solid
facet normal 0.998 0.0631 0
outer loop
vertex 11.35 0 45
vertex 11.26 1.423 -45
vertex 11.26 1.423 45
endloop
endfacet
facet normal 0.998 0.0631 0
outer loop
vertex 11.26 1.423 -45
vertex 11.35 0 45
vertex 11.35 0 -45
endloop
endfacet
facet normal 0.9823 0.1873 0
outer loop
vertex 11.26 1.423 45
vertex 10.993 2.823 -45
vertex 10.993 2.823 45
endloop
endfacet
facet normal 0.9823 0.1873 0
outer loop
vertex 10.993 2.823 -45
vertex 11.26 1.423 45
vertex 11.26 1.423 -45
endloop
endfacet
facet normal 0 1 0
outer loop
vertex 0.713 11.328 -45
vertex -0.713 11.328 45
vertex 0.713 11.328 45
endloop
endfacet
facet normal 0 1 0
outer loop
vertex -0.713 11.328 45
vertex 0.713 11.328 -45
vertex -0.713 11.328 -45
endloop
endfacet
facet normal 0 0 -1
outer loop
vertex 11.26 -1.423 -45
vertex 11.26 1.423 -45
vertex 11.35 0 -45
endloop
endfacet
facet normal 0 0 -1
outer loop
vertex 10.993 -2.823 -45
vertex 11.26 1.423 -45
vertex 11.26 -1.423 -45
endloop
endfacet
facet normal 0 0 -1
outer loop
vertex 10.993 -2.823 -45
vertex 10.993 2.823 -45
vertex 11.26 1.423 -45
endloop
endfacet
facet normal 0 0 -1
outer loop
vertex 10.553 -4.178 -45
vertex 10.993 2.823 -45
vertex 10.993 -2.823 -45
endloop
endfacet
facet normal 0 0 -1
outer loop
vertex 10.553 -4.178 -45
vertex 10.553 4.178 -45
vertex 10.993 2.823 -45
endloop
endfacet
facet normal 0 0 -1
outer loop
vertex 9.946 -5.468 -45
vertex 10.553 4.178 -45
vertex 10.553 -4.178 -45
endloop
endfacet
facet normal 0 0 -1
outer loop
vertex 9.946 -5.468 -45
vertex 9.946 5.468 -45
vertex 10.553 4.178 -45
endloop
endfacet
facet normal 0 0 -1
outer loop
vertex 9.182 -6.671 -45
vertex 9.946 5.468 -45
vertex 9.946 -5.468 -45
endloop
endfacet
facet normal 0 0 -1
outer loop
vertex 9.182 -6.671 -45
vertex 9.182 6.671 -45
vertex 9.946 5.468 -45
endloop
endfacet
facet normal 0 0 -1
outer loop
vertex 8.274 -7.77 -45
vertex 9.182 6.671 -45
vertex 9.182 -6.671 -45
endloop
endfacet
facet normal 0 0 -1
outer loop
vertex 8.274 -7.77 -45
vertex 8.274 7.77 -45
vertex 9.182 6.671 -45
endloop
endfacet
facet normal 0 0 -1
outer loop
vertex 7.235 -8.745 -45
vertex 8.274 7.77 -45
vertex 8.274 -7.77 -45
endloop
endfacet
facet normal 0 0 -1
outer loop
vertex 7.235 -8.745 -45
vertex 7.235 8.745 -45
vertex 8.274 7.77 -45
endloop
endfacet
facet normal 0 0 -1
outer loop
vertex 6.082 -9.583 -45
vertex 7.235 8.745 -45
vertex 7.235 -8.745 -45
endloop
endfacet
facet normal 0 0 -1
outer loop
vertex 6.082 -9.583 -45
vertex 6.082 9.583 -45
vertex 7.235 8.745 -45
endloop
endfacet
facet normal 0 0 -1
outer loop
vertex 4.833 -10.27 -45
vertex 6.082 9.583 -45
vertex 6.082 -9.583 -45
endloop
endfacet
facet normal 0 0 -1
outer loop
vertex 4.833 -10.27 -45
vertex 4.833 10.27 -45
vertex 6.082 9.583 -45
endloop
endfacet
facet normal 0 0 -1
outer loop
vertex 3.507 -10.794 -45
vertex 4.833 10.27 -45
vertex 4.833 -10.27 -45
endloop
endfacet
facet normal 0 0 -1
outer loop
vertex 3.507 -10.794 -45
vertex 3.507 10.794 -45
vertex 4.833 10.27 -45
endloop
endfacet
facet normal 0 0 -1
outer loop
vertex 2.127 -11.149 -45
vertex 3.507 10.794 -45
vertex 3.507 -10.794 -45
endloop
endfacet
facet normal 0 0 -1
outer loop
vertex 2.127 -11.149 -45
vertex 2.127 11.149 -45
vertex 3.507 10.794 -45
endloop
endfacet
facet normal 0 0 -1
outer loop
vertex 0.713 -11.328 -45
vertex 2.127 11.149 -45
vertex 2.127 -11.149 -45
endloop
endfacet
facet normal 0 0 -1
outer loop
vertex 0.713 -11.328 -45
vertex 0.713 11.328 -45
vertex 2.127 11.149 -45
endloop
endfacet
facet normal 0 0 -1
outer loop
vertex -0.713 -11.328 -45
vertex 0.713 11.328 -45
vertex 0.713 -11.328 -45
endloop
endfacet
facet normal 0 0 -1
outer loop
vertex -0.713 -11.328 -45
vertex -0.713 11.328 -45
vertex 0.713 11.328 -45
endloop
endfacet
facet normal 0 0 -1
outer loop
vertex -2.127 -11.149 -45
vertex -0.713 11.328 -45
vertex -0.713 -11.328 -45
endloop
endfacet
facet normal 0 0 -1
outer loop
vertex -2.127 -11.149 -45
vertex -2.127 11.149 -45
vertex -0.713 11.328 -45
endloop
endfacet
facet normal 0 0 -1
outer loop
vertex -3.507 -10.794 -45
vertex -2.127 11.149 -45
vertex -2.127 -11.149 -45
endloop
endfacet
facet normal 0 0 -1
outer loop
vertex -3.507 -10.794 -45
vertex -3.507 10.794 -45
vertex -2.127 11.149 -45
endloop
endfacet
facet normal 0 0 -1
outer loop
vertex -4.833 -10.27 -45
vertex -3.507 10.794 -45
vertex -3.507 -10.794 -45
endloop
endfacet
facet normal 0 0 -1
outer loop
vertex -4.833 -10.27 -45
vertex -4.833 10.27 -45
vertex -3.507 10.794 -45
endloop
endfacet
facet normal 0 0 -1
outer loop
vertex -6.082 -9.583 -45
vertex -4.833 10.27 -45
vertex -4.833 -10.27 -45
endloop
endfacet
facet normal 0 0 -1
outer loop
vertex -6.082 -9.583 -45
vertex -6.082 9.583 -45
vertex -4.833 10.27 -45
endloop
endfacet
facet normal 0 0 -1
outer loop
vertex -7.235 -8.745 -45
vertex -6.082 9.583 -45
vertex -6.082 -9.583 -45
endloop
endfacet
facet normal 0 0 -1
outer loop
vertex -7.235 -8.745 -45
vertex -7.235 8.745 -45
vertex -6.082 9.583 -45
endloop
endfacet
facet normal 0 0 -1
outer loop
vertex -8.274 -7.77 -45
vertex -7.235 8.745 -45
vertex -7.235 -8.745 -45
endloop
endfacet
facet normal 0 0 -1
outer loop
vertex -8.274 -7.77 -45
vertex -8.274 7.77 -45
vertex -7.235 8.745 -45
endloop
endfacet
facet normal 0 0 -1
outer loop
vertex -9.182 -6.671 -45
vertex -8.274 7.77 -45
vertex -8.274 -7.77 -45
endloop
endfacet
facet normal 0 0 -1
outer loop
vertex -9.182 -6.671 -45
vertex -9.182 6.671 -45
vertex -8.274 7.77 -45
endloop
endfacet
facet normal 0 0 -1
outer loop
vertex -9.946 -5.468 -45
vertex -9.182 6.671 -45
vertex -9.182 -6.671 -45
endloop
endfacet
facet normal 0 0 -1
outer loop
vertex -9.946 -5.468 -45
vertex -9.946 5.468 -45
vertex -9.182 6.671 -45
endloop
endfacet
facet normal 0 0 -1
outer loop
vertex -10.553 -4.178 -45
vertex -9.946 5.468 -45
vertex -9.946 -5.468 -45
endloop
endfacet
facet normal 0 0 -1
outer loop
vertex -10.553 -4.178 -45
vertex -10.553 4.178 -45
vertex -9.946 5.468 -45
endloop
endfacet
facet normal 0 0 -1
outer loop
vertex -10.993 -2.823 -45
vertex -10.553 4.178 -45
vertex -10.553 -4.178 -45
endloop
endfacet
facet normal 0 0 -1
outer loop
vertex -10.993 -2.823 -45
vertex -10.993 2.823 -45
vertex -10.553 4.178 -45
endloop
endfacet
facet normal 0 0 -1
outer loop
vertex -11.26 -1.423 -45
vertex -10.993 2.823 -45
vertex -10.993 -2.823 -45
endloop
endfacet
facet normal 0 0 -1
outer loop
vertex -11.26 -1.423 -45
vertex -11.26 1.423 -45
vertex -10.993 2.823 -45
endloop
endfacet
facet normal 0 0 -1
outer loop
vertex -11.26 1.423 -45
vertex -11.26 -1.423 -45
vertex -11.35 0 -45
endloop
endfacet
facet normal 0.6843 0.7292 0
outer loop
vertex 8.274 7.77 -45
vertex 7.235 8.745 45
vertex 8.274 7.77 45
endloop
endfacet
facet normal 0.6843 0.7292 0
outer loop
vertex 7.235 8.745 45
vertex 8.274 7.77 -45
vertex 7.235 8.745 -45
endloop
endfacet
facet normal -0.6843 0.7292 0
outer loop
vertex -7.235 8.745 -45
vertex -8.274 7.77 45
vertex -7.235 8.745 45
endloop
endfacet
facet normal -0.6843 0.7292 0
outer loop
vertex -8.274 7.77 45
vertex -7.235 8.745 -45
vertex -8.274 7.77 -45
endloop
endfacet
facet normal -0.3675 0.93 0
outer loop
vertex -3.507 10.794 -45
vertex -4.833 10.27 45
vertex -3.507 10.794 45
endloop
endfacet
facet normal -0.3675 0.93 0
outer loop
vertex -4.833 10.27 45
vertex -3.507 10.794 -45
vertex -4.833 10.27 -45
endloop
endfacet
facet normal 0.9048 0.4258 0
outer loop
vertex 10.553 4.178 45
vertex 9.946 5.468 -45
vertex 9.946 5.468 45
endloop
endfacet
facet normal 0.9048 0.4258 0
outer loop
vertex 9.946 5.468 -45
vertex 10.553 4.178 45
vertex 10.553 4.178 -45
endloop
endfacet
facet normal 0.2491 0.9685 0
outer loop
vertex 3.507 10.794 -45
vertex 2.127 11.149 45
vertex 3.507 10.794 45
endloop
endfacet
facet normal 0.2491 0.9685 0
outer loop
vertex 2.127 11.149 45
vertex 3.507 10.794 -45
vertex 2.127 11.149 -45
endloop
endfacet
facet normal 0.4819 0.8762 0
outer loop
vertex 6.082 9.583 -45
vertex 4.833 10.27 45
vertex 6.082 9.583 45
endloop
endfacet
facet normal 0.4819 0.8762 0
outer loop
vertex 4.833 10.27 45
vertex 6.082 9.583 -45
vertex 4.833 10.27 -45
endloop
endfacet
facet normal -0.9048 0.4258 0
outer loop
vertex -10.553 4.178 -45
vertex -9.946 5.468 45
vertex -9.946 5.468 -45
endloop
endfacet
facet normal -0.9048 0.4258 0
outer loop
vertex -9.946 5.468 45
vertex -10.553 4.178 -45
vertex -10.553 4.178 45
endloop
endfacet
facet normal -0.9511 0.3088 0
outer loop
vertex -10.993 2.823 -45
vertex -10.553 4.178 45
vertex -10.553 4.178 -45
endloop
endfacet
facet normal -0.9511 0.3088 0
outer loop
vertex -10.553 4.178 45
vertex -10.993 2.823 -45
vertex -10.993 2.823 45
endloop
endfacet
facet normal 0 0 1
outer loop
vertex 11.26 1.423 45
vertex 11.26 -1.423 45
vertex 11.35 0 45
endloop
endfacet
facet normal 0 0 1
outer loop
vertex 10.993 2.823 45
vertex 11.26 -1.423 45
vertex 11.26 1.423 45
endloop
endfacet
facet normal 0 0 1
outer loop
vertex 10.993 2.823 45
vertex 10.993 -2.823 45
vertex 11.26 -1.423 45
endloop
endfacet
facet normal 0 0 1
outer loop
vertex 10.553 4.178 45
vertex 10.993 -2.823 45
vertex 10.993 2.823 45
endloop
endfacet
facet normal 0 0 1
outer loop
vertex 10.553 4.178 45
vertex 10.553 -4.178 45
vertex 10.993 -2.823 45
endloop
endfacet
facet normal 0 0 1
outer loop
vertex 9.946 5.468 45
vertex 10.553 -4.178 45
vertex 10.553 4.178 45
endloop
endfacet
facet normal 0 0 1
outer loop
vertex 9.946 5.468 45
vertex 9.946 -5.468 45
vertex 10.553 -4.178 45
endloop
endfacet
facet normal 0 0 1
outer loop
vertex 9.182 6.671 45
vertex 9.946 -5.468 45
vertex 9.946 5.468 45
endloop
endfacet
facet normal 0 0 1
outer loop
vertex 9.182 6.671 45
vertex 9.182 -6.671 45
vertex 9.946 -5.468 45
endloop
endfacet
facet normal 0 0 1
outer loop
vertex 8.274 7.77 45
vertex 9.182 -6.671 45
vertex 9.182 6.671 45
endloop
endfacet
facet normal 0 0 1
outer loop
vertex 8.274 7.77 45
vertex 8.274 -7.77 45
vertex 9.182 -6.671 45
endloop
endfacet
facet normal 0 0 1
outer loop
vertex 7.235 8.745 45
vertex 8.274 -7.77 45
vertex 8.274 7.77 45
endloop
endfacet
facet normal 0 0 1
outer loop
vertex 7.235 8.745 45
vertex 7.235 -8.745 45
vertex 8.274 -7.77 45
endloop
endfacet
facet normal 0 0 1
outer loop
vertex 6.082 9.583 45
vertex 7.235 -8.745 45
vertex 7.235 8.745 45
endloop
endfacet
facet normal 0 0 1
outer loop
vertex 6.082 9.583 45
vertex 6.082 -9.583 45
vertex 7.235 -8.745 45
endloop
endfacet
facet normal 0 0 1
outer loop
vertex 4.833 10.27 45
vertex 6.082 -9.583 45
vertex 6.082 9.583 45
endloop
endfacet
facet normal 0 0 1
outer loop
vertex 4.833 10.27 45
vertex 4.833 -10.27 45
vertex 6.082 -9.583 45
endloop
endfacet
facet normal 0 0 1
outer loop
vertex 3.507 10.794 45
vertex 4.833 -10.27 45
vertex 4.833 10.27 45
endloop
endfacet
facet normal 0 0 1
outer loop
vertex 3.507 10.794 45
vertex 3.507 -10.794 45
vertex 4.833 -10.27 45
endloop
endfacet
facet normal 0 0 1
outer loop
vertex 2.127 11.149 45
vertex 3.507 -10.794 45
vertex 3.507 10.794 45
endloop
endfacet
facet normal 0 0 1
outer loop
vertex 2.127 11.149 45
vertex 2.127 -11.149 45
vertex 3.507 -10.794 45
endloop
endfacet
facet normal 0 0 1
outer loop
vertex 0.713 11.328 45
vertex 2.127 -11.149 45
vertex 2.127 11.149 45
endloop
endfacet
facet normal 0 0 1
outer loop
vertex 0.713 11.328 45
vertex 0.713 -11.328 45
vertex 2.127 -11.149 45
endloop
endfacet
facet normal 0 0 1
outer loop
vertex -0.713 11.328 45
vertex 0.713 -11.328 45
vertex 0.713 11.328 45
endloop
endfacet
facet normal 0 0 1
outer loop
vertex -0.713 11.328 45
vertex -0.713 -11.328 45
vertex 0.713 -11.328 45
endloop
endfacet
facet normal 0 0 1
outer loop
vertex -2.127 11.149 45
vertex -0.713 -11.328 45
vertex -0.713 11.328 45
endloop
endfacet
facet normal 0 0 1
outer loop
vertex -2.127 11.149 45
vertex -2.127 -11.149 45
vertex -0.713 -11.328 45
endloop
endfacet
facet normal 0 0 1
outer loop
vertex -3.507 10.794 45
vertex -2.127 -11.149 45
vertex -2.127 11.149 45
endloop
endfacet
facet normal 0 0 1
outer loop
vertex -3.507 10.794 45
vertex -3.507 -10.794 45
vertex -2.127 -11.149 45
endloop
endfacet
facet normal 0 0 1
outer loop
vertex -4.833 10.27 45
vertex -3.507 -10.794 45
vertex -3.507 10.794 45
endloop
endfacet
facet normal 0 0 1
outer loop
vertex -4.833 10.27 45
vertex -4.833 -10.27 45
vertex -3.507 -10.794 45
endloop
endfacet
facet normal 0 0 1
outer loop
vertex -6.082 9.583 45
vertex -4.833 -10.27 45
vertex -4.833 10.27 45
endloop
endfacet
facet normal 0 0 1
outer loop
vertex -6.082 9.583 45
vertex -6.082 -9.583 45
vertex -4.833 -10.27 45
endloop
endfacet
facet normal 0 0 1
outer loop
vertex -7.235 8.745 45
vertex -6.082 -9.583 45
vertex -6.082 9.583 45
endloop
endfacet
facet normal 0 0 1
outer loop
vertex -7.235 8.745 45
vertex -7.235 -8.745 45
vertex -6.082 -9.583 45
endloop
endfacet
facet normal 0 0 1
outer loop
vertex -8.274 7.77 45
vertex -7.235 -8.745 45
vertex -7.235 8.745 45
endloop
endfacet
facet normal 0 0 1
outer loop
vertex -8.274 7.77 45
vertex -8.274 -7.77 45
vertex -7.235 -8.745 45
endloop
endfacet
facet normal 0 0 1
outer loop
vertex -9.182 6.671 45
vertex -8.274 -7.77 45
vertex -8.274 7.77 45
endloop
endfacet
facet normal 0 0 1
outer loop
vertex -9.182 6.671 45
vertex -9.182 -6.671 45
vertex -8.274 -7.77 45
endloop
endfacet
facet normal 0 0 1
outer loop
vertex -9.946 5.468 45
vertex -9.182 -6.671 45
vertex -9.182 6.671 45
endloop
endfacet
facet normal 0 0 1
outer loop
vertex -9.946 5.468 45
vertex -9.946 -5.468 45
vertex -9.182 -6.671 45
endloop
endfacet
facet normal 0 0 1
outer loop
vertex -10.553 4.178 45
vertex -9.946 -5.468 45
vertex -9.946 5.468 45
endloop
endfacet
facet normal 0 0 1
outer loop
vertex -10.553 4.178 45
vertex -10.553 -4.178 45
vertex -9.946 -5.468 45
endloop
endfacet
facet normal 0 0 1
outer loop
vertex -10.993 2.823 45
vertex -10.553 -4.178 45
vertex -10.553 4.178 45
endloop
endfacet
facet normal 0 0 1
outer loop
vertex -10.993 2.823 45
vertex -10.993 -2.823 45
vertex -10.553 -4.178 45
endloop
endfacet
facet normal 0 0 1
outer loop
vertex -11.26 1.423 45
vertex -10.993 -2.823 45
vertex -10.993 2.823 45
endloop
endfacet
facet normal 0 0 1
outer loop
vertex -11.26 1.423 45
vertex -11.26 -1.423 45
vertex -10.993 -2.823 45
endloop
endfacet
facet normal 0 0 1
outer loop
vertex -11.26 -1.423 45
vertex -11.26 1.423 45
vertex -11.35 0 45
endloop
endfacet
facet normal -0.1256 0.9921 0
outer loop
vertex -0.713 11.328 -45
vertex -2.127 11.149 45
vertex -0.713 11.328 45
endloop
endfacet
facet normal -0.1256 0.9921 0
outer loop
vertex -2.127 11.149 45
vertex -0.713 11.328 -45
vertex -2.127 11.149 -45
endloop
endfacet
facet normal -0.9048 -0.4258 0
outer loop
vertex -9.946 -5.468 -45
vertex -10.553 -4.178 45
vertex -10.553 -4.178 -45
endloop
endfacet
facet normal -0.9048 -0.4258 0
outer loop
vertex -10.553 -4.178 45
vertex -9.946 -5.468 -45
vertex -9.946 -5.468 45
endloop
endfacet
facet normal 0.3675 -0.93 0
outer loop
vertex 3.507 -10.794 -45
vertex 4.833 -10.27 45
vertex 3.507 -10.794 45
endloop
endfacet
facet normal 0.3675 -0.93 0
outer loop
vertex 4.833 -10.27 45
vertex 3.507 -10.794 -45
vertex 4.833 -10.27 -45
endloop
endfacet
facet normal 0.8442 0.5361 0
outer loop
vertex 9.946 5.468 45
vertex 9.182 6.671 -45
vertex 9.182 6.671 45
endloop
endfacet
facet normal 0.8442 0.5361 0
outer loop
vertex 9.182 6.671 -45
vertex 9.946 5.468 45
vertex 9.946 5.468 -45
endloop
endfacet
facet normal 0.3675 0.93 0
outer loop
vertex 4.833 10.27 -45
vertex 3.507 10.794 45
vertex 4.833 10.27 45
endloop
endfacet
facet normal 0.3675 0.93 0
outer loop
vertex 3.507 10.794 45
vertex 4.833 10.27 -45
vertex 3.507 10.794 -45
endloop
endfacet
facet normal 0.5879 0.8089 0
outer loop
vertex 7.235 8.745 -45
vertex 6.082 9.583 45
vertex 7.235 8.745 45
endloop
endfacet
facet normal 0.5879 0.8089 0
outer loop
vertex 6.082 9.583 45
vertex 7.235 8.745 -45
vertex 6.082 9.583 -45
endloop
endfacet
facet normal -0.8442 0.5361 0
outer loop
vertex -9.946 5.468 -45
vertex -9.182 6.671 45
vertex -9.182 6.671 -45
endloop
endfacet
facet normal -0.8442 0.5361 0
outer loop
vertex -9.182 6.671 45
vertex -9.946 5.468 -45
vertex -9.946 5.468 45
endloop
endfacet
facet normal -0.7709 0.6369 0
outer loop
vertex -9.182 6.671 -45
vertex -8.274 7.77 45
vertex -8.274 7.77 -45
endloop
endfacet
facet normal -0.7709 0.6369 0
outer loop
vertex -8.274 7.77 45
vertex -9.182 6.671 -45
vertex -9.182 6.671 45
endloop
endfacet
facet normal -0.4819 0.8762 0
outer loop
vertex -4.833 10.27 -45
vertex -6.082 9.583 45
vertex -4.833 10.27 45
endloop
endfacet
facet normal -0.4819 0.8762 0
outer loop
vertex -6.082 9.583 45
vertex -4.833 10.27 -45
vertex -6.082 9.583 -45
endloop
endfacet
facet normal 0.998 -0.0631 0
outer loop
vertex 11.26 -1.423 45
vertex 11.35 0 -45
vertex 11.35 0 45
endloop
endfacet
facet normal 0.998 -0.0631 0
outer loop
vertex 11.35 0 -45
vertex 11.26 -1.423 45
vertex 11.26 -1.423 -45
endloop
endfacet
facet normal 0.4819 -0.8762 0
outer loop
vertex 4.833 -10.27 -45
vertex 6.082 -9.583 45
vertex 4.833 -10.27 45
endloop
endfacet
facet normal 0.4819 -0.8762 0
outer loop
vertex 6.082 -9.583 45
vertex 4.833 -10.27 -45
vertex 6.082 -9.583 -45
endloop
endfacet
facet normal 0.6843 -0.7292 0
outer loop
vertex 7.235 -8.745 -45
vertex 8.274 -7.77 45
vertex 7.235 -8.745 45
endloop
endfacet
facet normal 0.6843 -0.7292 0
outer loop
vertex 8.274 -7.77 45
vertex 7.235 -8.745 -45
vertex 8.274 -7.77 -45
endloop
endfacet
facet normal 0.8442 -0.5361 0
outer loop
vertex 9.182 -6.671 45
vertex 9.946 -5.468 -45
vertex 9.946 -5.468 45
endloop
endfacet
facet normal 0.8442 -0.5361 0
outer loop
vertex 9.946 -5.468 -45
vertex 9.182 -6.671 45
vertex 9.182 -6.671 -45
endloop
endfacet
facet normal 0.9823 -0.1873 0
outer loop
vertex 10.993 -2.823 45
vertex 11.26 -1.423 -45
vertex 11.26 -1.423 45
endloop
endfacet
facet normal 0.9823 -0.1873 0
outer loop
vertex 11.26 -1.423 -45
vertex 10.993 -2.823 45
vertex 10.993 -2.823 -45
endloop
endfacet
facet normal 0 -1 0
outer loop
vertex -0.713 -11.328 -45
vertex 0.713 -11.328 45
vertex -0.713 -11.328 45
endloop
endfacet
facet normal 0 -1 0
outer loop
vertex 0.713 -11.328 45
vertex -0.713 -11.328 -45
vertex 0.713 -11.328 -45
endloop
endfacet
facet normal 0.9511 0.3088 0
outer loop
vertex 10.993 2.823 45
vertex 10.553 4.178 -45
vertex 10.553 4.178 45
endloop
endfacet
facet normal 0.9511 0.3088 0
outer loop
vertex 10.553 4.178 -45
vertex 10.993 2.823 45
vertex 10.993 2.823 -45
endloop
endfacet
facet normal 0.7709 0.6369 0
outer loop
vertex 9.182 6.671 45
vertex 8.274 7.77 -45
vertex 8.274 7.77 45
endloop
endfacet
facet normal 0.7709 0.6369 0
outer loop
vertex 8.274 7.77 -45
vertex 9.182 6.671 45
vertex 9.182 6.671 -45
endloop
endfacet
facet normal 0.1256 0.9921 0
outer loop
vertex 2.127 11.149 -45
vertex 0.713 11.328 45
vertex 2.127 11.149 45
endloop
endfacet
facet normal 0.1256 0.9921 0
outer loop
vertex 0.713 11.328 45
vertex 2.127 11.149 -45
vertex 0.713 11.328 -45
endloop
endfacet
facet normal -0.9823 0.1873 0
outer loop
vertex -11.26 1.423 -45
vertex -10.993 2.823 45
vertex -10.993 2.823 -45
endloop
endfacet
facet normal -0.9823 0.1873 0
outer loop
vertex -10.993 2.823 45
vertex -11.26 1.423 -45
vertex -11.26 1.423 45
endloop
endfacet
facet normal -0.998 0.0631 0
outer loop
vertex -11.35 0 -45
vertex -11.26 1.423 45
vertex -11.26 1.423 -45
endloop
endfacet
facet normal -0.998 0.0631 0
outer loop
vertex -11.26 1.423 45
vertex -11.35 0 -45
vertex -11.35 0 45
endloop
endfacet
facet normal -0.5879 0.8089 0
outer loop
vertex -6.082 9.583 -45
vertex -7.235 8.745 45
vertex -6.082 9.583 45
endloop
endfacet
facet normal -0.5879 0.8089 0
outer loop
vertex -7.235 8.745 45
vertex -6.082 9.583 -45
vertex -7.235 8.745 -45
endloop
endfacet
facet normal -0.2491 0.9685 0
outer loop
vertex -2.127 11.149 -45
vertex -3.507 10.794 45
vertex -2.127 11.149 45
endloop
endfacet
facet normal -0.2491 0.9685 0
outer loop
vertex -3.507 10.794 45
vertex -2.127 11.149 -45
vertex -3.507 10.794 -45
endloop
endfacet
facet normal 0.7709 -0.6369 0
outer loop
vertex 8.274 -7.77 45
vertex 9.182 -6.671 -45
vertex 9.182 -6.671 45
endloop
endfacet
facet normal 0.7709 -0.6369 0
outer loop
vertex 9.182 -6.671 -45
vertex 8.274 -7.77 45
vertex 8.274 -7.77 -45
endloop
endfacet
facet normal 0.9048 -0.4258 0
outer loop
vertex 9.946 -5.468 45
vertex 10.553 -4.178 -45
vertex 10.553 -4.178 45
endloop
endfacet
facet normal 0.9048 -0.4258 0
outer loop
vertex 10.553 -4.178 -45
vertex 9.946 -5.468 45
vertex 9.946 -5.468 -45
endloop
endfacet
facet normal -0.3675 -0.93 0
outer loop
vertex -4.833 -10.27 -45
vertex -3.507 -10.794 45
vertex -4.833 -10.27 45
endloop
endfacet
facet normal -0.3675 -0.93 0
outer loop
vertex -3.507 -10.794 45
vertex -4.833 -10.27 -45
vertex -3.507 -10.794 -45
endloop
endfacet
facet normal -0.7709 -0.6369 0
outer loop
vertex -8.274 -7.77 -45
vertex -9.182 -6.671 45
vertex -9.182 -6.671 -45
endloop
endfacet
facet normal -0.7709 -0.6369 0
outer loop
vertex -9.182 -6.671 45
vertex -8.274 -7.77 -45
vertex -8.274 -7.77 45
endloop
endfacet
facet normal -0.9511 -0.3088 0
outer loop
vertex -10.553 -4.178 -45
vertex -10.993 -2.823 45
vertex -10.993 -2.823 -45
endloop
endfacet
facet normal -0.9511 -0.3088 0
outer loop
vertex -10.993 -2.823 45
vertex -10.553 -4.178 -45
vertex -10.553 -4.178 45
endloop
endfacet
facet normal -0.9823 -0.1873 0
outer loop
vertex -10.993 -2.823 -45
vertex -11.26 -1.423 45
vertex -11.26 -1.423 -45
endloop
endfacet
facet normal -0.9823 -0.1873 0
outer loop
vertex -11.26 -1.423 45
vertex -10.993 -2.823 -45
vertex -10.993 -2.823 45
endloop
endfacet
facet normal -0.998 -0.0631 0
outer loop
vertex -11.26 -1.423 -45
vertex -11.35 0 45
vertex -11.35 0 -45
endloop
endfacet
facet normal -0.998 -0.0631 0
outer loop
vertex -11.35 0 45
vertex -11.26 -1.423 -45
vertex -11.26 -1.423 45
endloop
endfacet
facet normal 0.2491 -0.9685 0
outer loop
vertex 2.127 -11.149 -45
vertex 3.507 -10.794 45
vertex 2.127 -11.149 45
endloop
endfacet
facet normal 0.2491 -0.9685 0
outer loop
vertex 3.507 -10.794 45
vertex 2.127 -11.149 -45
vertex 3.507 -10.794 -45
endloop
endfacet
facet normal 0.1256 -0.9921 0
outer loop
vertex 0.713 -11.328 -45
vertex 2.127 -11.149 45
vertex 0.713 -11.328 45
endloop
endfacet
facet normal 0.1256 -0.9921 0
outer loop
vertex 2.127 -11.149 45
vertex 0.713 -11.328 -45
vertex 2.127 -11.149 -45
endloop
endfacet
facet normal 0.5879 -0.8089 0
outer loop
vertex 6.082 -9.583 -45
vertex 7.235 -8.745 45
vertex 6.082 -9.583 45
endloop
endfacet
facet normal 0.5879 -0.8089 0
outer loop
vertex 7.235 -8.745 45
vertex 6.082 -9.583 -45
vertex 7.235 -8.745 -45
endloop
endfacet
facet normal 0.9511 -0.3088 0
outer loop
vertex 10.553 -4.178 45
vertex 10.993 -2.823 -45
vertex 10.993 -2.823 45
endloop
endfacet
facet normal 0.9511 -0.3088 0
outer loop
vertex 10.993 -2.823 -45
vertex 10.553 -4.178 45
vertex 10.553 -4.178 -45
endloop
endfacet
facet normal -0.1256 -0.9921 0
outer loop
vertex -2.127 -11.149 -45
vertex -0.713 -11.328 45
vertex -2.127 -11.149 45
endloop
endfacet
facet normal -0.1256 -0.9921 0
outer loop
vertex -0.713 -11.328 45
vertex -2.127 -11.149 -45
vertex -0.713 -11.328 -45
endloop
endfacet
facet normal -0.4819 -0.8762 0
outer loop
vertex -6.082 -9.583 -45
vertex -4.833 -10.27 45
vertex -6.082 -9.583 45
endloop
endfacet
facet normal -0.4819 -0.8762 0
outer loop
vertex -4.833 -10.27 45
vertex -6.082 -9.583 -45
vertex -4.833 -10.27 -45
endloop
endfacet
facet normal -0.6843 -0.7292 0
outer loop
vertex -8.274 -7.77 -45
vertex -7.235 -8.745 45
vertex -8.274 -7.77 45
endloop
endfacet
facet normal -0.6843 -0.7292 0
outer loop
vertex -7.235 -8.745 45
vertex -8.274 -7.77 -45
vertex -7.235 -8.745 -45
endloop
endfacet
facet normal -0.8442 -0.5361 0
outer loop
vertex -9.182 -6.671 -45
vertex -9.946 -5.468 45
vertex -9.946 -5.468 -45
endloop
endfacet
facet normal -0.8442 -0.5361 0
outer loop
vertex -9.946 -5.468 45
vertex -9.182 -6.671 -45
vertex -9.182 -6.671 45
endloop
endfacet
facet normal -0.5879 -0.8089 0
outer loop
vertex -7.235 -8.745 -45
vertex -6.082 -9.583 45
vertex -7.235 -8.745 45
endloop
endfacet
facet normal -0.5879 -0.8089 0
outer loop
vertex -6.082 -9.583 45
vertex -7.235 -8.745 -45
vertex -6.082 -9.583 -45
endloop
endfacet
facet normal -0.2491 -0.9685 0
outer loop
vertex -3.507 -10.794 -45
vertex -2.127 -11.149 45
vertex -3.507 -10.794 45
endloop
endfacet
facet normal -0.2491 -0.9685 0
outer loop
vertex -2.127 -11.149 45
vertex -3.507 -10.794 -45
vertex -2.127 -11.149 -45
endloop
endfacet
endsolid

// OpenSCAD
$fn = 50;


difference() {
	union() {
		translate(v = [0, 0, -45.0000000000]) {
			cylinder(h = 90, r = 11.3500000000);
		}
	}
	union() {
		translate(v = [0, 0, -100.0000000000]) {
			cylinder(h = 200, r = 0);
		}
	}
}
